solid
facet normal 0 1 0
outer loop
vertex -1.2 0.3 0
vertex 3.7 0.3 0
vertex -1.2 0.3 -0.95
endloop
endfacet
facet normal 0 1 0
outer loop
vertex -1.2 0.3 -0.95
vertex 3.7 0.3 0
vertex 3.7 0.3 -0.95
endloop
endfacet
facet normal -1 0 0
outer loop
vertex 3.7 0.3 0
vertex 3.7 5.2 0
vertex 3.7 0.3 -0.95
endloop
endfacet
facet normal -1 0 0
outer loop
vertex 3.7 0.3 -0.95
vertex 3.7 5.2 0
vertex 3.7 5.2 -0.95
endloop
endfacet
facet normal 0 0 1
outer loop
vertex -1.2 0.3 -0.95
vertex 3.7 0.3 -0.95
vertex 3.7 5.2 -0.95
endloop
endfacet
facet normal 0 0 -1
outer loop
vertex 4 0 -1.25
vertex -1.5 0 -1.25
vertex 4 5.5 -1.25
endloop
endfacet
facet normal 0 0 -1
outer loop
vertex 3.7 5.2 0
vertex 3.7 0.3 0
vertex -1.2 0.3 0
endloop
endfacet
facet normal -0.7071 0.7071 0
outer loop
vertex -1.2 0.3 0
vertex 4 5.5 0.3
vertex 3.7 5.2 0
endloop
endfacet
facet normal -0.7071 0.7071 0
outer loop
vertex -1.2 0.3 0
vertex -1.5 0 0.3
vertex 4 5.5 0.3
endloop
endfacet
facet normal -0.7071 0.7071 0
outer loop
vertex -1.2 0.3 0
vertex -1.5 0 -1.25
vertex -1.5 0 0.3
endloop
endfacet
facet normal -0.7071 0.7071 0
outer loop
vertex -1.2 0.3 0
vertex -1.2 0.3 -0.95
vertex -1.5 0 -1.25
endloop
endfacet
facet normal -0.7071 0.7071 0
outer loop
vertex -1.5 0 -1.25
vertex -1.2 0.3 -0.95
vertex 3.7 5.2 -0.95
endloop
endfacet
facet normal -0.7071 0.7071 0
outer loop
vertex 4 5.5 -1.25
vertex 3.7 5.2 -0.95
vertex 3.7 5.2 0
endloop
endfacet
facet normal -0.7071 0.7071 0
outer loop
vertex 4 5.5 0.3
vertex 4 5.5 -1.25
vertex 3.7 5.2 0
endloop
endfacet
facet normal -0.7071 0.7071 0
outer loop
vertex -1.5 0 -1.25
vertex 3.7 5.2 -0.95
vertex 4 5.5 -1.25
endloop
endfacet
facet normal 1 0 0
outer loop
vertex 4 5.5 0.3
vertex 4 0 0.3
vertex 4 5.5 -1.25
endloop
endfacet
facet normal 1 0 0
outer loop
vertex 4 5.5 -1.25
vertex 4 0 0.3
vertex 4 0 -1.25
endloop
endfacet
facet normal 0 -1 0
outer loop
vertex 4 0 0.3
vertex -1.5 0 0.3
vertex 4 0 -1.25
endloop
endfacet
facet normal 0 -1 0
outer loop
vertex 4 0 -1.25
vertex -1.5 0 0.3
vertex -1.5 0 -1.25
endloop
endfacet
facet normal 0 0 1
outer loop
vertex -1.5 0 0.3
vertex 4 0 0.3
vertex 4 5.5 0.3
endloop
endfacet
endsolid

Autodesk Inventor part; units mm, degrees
ref_plane "YZ Plane" through (0, 0, 0) normal (1, 0, 0) x (0, 1, 0)
ref_plane "XZ Plane" through (0, 0, 0) normal (0, 1, 0) x (-1, 0, 0)
sketch "Boceto1" plane through (0, 0, 0) normal (0, 0, 1) x (1, 0, 0)
  line L0 (0, 0) -> (4, 0)
  line L1 (4, 0) -> (4, 4)
  line L2 (4, 4) -> (4, 5.5)
  line L3 (0, 0) -> (-1.5, 0)
  line L4 (-1.5, 0) -> (4, 5.5)
  dimension "d0" = 4
  dimension "d1" = 4
  dimension "d10" = 1.5
  dimension "d11" = 1.5
extrude "Extrusión1" add sketch "Boceto1" along normal blind 0.3
ref_plane "Plano de trabajo1" through (0, 0, -0.95) normal (0, 0, 1) x (1, 0, 0)
sketch "Boceto4" plane through (0, 0, -0.95) normal (0, 0, 1) x (1, 0, 0)
  line L0 (-1.5, 0) -> (4, 0) projected
  line L1 (4, 5.5) -> (-1.5, 0) projected
  line L2 (4, 0) -> (4, 5.5) projected
  point P0 (0, 0)
extrude "Extrusión4" add sketch "Boceto4" against normal blind 0.3
sketch "Boceto5" plane through (0, 0, -0.95) normal (0, 0, 1) x (1, 0, 0)
  line L0 (4, 0) -> (-1.5, 0) projected
  line L1 (4, 0) -> (3.7, 0)
  line L2 (3.7, 0.3) -> (3.7, 5.2)
  line L3 (4, 0) -> (-1.5, 0) projected
  line L4 (-1.5, 0) -> (4, 5.5) projected
  line L5 (4, 5.5) -> (4, 0) projected
  line L6 (3.7, 0.3) -> (-1.2, 0.3)
  point P0 (0, 0)
  dimension "d14" = 0.3
  dimension "d15" = 0.3
extrude "Extrusión5" add sketch "Boceto5" along normal blind 1 contours L0 L4 L6 L2 L5
properties part number "esquinero"
